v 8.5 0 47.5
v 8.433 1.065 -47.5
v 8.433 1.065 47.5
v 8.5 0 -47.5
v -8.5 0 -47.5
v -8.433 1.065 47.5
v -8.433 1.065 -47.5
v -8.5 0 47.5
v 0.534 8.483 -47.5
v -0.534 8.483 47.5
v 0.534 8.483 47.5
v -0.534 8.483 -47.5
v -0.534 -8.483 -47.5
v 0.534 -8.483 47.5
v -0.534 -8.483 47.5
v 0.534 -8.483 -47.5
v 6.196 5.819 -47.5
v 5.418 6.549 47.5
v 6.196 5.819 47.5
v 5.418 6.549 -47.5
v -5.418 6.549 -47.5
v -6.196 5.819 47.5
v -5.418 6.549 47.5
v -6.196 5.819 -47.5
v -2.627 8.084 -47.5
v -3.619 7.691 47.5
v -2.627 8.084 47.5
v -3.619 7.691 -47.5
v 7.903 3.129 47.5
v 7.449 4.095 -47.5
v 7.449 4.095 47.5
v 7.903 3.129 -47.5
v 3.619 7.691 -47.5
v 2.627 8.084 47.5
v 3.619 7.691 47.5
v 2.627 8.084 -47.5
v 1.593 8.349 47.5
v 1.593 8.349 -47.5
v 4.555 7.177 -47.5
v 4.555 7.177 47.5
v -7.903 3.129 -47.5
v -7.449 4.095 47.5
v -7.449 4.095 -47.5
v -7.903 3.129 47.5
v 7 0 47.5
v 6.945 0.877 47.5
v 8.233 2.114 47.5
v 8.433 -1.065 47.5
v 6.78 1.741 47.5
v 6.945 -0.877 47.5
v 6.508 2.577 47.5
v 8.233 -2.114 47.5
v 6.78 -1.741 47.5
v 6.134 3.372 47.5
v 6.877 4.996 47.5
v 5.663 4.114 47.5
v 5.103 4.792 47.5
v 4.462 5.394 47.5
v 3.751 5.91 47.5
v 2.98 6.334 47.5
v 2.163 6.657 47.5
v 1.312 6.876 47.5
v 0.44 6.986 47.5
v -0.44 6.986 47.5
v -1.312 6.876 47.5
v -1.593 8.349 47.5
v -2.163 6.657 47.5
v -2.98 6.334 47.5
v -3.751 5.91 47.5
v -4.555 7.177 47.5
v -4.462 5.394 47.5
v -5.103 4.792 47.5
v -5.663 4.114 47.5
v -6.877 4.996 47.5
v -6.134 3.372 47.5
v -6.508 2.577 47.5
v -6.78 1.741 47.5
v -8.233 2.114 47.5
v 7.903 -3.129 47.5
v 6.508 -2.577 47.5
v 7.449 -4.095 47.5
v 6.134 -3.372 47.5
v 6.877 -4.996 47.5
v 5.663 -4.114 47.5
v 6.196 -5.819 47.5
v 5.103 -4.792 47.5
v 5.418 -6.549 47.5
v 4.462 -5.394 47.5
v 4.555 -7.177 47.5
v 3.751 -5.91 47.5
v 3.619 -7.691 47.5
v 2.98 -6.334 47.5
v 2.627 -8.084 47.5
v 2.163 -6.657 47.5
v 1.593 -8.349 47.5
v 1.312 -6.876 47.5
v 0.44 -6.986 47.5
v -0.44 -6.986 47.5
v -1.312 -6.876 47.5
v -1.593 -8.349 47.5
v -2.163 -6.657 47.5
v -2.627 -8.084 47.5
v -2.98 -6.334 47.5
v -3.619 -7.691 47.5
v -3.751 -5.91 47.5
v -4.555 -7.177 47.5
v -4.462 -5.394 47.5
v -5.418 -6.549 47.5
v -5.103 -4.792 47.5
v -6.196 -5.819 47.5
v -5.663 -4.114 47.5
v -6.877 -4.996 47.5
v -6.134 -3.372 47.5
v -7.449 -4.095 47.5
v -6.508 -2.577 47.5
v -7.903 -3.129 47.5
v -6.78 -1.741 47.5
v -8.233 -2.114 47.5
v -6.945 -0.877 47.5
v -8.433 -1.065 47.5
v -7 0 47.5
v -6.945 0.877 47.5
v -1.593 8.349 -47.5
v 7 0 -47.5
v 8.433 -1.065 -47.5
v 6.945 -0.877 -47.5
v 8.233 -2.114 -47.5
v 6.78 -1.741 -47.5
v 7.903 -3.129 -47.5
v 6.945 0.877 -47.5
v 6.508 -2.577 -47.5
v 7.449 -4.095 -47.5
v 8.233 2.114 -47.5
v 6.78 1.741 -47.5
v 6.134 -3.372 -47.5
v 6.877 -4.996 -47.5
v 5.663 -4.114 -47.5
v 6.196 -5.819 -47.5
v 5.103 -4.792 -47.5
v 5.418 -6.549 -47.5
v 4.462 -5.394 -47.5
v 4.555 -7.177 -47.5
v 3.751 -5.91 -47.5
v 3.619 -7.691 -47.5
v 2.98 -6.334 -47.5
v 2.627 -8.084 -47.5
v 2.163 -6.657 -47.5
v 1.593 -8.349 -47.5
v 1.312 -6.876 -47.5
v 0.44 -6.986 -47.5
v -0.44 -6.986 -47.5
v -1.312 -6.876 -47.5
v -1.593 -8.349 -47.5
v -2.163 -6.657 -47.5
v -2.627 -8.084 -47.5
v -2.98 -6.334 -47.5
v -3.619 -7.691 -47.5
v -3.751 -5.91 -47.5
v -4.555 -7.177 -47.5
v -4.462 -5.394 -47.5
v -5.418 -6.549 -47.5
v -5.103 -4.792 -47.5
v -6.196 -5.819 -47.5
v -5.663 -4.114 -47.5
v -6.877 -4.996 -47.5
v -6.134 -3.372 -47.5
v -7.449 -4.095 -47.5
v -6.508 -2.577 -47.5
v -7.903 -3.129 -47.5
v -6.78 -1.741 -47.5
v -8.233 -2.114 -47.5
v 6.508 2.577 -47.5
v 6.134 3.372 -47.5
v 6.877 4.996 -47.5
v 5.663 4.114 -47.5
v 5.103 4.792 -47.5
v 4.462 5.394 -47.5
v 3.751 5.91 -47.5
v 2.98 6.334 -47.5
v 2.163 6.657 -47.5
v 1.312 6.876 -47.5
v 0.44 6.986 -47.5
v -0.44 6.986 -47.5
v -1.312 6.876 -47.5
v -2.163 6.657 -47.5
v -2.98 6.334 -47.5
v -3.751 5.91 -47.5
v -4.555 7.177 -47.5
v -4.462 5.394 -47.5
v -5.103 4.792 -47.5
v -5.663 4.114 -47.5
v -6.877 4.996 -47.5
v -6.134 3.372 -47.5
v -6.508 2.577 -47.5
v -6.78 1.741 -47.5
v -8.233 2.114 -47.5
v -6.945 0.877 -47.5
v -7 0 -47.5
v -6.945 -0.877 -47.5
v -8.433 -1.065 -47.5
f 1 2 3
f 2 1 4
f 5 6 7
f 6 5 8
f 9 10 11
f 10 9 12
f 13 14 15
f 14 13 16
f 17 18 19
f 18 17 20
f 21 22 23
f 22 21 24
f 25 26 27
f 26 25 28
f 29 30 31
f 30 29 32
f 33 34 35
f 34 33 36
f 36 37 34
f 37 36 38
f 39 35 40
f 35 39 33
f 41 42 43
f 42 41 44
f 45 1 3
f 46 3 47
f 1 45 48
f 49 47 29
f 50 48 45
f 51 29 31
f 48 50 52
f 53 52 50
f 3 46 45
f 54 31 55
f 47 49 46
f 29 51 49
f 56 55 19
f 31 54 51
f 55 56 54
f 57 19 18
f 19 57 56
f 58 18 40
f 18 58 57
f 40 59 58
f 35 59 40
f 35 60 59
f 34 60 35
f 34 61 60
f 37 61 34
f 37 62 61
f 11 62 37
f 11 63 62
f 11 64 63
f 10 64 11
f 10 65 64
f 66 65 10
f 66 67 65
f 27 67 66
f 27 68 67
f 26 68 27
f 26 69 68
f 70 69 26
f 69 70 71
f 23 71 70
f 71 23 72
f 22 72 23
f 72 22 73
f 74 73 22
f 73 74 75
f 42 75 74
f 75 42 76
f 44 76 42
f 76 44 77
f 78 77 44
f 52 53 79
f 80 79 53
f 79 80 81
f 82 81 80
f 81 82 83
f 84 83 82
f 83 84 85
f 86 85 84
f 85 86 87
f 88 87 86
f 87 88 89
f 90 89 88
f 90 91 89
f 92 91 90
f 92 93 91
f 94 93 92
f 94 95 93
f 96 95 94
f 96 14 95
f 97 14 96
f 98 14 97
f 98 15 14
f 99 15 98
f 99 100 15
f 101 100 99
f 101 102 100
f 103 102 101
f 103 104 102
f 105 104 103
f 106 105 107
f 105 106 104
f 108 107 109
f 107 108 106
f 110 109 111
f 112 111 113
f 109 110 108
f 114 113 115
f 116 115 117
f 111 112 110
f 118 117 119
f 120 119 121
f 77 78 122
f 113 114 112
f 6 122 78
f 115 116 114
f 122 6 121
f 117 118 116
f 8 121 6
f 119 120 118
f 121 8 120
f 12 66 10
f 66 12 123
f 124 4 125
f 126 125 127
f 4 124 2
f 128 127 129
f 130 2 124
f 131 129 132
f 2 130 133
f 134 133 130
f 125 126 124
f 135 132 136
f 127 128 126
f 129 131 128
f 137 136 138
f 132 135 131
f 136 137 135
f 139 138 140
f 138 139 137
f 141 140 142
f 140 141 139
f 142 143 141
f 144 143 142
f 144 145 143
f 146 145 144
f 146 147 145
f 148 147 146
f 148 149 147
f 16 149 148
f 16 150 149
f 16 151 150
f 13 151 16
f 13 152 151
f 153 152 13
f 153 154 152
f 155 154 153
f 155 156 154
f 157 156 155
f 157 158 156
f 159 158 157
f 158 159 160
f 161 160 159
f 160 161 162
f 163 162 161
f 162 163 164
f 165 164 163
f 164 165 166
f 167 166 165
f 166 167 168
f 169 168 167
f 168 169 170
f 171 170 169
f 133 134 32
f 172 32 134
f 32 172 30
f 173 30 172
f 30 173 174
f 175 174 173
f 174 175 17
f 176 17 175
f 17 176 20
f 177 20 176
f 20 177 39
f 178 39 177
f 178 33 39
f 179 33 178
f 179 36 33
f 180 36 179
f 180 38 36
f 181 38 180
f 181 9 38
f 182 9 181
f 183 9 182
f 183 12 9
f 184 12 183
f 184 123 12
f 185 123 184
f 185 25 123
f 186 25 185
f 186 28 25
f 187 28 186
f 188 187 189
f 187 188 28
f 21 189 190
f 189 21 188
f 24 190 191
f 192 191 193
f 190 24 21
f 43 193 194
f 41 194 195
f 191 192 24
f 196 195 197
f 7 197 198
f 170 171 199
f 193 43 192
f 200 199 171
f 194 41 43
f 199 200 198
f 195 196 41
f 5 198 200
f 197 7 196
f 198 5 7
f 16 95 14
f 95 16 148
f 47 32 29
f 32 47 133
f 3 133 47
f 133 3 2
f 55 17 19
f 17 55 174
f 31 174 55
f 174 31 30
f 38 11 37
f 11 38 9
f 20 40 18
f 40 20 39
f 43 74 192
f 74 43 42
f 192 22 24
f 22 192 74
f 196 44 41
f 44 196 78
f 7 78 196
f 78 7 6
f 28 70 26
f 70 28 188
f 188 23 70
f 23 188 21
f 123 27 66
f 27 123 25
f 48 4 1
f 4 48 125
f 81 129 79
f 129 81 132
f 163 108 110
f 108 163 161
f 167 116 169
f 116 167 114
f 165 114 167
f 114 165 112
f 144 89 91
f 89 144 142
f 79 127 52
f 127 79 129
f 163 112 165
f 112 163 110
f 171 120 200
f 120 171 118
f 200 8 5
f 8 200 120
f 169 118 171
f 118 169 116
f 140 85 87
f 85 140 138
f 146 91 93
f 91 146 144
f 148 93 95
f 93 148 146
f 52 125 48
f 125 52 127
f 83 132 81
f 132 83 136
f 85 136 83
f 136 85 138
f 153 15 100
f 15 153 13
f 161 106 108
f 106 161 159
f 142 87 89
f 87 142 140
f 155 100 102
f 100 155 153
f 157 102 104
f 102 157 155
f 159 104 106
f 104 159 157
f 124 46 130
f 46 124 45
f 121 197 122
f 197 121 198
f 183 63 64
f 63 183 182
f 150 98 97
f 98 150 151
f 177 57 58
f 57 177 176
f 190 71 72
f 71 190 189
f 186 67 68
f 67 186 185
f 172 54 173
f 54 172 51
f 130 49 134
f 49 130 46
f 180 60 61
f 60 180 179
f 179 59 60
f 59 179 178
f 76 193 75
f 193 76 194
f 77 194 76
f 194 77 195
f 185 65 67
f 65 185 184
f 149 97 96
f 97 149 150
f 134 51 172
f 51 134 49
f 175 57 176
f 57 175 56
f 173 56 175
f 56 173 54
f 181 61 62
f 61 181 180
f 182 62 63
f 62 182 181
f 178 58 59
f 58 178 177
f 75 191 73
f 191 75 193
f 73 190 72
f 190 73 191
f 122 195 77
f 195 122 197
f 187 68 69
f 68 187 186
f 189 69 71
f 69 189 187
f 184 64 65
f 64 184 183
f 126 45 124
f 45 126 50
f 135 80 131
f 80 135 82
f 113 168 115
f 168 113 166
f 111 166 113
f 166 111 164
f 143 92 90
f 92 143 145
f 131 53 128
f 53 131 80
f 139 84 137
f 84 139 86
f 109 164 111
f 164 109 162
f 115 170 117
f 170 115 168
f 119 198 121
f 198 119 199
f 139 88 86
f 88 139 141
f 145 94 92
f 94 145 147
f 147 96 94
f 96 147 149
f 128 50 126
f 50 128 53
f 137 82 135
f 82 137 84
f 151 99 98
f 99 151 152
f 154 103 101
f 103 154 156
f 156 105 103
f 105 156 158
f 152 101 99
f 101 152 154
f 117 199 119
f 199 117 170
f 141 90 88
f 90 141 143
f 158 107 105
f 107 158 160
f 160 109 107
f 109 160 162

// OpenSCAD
$fn = 50;


difference() {
	union() {
		translate(v = [0, 0, -47.5000000000]) {
			cylinder(h = 95, r = 8.5000000000);
		}
	}
	union() {
		translate(v = [0, 0, -100.0000000000]) {
			cylinder(h = 200, r = 7);
		}
	}
}
